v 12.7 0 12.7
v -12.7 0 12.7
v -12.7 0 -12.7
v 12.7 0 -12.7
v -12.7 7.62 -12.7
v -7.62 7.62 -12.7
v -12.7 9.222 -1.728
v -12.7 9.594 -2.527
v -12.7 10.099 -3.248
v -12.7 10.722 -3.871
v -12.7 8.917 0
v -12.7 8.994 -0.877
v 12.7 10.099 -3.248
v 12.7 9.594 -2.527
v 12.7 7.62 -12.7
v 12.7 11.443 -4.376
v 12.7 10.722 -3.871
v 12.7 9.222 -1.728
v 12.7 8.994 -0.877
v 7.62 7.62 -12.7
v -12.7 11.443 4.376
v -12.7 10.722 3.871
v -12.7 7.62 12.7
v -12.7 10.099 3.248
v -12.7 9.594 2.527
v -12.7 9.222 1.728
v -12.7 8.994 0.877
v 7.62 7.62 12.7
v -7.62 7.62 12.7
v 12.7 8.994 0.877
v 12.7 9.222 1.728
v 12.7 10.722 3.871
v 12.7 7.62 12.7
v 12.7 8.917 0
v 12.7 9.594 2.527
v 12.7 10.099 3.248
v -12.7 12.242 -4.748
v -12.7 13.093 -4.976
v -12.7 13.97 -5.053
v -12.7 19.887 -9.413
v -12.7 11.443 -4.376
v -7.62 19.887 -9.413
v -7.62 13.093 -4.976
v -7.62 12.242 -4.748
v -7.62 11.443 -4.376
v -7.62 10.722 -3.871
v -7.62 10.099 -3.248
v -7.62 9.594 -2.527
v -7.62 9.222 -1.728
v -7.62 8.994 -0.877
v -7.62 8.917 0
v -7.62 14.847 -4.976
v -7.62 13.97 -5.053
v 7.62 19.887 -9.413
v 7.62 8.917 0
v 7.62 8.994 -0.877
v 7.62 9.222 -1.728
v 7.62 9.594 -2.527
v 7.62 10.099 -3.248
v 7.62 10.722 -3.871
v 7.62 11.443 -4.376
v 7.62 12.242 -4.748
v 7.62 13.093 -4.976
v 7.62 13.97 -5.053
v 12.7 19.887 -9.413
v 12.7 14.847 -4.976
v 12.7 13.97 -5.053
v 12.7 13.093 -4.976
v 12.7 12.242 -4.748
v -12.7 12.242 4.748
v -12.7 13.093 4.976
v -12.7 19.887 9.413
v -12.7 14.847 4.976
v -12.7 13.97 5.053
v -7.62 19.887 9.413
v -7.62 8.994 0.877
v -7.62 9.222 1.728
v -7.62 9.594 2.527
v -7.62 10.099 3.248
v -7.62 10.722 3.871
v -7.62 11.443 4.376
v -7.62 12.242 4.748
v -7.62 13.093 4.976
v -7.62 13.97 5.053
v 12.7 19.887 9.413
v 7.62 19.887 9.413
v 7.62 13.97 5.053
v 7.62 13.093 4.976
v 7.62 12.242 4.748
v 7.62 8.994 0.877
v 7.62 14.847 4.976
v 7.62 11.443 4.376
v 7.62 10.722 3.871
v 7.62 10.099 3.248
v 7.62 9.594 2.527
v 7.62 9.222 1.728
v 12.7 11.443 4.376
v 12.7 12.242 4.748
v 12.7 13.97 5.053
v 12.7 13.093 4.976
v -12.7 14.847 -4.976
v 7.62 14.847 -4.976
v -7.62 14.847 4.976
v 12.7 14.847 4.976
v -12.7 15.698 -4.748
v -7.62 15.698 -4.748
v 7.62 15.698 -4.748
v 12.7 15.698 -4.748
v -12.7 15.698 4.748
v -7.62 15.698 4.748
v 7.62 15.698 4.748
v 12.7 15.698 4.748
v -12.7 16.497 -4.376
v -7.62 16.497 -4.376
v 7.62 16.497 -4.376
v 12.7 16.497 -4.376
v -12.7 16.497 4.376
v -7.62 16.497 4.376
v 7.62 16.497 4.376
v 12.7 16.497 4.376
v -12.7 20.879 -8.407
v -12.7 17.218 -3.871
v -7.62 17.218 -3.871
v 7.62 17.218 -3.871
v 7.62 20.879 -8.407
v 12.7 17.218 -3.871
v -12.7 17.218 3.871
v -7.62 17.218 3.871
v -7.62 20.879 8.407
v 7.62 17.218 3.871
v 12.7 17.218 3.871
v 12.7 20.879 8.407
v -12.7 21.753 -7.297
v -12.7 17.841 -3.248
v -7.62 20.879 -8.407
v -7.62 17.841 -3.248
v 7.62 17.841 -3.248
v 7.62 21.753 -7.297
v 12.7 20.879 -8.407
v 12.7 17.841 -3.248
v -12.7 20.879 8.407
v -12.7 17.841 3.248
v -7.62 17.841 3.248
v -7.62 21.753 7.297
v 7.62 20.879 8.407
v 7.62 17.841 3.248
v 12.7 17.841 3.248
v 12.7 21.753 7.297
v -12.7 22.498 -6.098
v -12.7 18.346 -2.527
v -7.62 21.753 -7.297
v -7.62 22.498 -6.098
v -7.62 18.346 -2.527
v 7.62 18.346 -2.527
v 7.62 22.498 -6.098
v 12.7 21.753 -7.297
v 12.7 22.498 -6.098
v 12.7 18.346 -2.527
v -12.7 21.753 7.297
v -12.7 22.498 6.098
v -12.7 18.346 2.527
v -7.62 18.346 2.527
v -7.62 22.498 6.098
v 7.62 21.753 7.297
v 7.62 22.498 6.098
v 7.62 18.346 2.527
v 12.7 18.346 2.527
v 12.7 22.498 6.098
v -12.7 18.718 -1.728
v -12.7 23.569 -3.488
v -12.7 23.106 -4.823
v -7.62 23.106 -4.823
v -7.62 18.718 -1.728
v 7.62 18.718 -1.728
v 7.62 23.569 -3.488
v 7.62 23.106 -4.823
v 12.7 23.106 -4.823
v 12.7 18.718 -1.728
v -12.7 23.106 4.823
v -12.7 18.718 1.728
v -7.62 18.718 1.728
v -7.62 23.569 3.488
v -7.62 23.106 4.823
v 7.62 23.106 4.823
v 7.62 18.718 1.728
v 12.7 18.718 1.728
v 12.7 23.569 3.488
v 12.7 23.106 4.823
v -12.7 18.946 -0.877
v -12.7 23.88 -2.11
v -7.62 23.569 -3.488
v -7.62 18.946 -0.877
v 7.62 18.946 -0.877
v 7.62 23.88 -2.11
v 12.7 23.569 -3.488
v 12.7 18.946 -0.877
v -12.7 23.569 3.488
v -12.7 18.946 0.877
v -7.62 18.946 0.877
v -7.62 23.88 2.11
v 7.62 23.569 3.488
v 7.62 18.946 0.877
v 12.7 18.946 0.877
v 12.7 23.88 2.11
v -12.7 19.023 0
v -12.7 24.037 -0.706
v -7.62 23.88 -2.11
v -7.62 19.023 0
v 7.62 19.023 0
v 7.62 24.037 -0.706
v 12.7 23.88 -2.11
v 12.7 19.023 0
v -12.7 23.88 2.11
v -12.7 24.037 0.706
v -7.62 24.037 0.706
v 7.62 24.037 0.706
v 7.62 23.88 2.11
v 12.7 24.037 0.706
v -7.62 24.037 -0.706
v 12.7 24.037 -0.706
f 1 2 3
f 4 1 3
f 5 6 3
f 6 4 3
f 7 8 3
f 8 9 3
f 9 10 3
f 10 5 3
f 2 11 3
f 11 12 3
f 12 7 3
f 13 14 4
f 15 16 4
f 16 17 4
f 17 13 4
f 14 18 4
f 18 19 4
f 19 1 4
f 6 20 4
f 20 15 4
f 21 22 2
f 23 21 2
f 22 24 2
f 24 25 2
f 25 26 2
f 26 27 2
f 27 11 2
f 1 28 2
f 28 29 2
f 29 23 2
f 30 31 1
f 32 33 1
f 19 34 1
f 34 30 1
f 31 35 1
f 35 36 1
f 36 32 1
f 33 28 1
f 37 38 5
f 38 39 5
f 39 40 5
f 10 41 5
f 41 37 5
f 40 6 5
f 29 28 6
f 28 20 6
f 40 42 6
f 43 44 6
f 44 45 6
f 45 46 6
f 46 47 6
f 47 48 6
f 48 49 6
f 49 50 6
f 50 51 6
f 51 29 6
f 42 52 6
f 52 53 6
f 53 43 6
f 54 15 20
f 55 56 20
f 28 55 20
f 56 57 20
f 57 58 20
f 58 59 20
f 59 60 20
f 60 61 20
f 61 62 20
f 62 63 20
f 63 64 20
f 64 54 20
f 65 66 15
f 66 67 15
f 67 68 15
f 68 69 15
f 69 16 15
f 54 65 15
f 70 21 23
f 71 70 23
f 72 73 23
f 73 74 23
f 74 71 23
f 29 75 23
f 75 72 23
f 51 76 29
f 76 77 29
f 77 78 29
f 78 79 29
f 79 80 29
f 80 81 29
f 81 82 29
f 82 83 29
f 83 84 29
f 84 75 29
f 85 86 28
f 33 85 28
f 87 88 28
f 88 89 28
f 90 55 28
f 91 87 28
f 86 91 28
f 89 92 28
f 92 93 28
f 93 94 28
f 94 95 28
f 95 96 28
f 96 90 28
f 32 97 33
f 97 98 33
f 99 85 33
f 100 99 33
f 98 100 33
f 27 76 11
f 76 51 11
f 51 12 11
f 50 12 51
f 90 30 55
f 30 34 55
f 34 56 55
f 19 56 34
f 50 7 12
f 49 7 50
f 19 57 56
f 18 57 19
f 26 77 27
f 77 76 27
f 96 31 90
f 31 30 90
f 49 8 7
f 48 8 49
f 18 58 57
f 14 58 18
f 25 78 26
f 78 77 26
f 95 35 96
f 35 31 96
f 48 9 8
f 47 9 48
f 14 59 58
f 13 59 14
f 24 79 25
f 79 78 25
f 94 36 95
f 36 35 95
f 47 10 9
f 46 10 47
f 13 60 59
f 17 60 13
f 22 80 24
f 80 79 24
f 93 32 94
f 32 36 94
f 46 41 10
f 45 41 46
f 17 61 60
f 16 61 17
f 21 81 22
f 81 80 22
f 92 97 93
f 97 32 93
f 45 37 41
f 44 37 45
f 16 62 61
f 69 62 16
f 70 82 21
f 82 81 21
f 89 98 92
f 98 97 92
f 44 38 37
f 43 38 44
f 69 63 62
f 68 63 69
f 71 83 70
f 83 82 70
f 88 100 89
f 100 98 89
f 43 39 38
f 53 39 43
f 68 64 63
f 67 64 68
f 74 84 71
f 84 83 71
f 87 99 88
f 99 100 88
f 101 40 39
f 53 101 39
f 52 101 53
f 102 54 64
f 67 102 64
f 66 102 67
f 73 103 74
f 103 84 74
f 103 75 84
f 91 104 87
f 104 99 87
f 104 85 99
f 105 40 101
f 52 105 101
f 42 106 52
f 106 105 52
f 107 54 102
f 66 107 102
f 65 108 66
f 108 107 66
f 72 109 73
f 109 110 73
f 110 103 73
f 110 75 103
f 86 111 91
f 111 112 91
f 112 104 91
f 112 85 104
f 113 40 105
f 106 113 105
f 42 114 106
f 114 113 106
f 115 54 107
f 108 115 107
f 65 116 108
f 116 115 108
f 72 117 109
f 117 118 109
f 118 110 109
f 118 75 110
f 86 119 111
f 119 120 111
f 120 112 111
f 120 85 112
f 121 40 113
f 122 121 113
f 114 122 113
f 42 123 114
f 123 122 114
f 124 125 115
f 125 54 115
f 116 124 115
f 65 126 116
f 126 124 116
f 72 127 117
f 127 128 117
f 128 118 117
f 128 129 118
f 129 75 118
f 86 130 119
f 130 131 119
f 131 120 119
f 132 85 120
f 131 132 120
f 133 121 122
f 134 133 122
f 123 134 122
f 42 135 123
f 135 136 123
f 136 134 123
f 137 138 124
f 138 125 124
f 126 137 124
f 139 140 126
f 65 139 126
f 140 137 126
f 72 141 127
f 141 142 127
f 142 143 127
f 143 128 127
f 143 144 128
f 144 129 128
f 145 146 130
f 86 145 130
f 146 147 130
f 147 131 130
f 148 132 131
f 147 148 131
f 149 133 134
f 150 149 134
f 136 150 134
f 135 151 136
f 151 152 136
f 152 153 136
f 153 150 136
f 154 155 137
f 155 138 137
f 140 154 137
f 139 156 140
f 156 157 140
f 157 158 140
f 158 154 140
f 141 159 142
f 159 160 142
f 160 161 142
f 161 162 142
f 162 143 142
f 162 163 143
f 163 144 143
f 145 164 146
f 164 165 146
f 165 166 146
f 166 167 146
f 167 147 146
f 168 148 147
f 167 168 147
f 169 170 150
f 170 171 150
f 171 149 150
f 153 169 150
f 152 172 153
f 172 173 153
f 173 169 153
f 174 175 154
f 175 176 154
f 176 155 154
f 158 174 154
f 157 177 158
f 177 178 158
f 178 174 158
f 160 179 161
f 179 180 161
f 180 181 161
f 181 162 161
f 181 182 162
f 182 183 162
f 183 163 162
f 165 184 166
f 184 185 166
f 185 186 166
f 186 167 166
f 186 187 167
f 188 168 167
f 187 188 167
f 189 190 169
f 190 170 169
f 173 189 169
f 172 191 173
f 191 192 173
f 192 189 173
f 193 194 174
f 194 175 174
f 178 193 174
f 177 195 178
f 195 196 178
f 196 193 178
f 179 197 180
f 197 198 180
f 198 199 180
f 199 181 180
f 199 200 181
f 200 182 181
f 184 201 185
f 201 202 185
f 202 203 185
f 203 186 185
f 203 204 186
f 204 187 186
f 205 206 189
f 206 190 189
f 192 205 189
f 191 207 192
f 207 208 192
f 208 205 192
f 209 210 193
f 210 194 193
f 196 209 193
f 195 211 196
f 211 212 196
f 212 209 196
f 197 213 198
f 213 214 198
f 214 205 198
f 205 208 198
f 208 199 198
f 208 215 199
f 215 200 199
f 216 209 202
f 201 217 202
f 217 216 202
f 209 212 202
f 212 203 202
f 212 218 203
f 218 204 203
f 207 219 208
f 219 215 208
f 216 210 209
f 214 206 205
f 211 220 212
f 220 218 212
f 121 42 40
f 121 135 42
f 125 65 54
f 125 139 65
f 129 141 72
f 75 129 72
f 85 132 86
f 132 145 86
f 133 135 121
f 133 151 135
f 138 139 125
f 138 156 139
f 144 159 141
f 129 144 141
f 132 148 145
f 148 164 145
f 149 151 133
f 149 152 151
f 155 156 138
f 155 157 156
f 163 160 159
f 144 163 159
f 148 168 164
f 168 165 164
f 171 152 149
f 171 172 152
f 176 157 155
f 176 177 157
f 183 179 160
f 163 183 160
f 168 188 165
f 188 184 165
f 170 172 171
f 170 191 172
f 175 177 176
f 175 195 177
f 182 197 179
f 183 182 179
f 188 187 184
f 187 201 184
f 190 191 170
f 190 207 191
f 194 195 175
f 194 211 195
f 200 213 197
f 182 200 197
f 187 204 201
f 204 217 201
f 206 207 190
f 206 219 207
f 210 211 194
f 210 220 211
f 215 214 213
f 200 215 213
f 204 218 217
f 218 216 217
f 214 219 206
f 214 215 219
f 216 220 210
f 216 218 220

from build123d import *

# Parameters (mm, degrees)
SKETCH1_W           = 25.4
SKETCH1_H           = 25.4
BOSS_EXTRUDE1_DEPTH = 7.62
BOSS_EXTRUDE2_DEPTH = 5.08
SKETCH3_R           = 5.053169443
CUT_EXTRUDE1_DEPTH  = 26.4


with BuildPart() as part:
    # Sketch1 → Boss-Extrude1 (new body)
    with BuildSketch(Plane(origin=(0, 0, 0), x_dir=(1, 0, 0), z_dir=(0, 1, 0))):
        Rectangle(SKETCH1_W, SKETCH1_H)
    extrude(amount=BOSS_EXTRUDE1_DEPTH)

    # Sketch2 → Boss-Extrude2 (add)
    with BuildSketch(Plane(origin=(12.7, 0, 0), x_dir=(0, 0, -1), z_dir=(1, 0, 0))):
        with BuildLine():
            Line((-12.7, 7.62), (-9.412998127, 19.887257994))
            ThreePointArc((-9.412998127, 19.887257994), (0, 24.05658338), (9.412998127, 19.887257994))
            Line((9.412998127, 19.887257994), (12.7, 7.62))
            Line((12.7, 7.62), (-12.7, 7.62))
        make_face()
    boss_extrude2 = extrude(amount=-BOSS_EXTRUDE2_DEPTH)

    # Mirror1: Boss-Extrude2 across plane
    add(boss_extrude2.mirror(Plane(origin=(0, 0, 0), x_dir=(0, 0, 1), z_dir=(1, 0, 0))))

    # Sketch3 → Cut-Extrude1 (cut, through all)
    with BuildSketch(Plane(origin=(12.7, 0, 0), x_dir=(0, 0, -1), z_dir=(1, 0, 0))):
        with Locations((0, 13.97)):
            Circle(SKETCH3_R)
    extrude(amount=-CUT_EXTRUDE1_DEPTH, mode=Mode.SUBTRACT)


solid = part.part
